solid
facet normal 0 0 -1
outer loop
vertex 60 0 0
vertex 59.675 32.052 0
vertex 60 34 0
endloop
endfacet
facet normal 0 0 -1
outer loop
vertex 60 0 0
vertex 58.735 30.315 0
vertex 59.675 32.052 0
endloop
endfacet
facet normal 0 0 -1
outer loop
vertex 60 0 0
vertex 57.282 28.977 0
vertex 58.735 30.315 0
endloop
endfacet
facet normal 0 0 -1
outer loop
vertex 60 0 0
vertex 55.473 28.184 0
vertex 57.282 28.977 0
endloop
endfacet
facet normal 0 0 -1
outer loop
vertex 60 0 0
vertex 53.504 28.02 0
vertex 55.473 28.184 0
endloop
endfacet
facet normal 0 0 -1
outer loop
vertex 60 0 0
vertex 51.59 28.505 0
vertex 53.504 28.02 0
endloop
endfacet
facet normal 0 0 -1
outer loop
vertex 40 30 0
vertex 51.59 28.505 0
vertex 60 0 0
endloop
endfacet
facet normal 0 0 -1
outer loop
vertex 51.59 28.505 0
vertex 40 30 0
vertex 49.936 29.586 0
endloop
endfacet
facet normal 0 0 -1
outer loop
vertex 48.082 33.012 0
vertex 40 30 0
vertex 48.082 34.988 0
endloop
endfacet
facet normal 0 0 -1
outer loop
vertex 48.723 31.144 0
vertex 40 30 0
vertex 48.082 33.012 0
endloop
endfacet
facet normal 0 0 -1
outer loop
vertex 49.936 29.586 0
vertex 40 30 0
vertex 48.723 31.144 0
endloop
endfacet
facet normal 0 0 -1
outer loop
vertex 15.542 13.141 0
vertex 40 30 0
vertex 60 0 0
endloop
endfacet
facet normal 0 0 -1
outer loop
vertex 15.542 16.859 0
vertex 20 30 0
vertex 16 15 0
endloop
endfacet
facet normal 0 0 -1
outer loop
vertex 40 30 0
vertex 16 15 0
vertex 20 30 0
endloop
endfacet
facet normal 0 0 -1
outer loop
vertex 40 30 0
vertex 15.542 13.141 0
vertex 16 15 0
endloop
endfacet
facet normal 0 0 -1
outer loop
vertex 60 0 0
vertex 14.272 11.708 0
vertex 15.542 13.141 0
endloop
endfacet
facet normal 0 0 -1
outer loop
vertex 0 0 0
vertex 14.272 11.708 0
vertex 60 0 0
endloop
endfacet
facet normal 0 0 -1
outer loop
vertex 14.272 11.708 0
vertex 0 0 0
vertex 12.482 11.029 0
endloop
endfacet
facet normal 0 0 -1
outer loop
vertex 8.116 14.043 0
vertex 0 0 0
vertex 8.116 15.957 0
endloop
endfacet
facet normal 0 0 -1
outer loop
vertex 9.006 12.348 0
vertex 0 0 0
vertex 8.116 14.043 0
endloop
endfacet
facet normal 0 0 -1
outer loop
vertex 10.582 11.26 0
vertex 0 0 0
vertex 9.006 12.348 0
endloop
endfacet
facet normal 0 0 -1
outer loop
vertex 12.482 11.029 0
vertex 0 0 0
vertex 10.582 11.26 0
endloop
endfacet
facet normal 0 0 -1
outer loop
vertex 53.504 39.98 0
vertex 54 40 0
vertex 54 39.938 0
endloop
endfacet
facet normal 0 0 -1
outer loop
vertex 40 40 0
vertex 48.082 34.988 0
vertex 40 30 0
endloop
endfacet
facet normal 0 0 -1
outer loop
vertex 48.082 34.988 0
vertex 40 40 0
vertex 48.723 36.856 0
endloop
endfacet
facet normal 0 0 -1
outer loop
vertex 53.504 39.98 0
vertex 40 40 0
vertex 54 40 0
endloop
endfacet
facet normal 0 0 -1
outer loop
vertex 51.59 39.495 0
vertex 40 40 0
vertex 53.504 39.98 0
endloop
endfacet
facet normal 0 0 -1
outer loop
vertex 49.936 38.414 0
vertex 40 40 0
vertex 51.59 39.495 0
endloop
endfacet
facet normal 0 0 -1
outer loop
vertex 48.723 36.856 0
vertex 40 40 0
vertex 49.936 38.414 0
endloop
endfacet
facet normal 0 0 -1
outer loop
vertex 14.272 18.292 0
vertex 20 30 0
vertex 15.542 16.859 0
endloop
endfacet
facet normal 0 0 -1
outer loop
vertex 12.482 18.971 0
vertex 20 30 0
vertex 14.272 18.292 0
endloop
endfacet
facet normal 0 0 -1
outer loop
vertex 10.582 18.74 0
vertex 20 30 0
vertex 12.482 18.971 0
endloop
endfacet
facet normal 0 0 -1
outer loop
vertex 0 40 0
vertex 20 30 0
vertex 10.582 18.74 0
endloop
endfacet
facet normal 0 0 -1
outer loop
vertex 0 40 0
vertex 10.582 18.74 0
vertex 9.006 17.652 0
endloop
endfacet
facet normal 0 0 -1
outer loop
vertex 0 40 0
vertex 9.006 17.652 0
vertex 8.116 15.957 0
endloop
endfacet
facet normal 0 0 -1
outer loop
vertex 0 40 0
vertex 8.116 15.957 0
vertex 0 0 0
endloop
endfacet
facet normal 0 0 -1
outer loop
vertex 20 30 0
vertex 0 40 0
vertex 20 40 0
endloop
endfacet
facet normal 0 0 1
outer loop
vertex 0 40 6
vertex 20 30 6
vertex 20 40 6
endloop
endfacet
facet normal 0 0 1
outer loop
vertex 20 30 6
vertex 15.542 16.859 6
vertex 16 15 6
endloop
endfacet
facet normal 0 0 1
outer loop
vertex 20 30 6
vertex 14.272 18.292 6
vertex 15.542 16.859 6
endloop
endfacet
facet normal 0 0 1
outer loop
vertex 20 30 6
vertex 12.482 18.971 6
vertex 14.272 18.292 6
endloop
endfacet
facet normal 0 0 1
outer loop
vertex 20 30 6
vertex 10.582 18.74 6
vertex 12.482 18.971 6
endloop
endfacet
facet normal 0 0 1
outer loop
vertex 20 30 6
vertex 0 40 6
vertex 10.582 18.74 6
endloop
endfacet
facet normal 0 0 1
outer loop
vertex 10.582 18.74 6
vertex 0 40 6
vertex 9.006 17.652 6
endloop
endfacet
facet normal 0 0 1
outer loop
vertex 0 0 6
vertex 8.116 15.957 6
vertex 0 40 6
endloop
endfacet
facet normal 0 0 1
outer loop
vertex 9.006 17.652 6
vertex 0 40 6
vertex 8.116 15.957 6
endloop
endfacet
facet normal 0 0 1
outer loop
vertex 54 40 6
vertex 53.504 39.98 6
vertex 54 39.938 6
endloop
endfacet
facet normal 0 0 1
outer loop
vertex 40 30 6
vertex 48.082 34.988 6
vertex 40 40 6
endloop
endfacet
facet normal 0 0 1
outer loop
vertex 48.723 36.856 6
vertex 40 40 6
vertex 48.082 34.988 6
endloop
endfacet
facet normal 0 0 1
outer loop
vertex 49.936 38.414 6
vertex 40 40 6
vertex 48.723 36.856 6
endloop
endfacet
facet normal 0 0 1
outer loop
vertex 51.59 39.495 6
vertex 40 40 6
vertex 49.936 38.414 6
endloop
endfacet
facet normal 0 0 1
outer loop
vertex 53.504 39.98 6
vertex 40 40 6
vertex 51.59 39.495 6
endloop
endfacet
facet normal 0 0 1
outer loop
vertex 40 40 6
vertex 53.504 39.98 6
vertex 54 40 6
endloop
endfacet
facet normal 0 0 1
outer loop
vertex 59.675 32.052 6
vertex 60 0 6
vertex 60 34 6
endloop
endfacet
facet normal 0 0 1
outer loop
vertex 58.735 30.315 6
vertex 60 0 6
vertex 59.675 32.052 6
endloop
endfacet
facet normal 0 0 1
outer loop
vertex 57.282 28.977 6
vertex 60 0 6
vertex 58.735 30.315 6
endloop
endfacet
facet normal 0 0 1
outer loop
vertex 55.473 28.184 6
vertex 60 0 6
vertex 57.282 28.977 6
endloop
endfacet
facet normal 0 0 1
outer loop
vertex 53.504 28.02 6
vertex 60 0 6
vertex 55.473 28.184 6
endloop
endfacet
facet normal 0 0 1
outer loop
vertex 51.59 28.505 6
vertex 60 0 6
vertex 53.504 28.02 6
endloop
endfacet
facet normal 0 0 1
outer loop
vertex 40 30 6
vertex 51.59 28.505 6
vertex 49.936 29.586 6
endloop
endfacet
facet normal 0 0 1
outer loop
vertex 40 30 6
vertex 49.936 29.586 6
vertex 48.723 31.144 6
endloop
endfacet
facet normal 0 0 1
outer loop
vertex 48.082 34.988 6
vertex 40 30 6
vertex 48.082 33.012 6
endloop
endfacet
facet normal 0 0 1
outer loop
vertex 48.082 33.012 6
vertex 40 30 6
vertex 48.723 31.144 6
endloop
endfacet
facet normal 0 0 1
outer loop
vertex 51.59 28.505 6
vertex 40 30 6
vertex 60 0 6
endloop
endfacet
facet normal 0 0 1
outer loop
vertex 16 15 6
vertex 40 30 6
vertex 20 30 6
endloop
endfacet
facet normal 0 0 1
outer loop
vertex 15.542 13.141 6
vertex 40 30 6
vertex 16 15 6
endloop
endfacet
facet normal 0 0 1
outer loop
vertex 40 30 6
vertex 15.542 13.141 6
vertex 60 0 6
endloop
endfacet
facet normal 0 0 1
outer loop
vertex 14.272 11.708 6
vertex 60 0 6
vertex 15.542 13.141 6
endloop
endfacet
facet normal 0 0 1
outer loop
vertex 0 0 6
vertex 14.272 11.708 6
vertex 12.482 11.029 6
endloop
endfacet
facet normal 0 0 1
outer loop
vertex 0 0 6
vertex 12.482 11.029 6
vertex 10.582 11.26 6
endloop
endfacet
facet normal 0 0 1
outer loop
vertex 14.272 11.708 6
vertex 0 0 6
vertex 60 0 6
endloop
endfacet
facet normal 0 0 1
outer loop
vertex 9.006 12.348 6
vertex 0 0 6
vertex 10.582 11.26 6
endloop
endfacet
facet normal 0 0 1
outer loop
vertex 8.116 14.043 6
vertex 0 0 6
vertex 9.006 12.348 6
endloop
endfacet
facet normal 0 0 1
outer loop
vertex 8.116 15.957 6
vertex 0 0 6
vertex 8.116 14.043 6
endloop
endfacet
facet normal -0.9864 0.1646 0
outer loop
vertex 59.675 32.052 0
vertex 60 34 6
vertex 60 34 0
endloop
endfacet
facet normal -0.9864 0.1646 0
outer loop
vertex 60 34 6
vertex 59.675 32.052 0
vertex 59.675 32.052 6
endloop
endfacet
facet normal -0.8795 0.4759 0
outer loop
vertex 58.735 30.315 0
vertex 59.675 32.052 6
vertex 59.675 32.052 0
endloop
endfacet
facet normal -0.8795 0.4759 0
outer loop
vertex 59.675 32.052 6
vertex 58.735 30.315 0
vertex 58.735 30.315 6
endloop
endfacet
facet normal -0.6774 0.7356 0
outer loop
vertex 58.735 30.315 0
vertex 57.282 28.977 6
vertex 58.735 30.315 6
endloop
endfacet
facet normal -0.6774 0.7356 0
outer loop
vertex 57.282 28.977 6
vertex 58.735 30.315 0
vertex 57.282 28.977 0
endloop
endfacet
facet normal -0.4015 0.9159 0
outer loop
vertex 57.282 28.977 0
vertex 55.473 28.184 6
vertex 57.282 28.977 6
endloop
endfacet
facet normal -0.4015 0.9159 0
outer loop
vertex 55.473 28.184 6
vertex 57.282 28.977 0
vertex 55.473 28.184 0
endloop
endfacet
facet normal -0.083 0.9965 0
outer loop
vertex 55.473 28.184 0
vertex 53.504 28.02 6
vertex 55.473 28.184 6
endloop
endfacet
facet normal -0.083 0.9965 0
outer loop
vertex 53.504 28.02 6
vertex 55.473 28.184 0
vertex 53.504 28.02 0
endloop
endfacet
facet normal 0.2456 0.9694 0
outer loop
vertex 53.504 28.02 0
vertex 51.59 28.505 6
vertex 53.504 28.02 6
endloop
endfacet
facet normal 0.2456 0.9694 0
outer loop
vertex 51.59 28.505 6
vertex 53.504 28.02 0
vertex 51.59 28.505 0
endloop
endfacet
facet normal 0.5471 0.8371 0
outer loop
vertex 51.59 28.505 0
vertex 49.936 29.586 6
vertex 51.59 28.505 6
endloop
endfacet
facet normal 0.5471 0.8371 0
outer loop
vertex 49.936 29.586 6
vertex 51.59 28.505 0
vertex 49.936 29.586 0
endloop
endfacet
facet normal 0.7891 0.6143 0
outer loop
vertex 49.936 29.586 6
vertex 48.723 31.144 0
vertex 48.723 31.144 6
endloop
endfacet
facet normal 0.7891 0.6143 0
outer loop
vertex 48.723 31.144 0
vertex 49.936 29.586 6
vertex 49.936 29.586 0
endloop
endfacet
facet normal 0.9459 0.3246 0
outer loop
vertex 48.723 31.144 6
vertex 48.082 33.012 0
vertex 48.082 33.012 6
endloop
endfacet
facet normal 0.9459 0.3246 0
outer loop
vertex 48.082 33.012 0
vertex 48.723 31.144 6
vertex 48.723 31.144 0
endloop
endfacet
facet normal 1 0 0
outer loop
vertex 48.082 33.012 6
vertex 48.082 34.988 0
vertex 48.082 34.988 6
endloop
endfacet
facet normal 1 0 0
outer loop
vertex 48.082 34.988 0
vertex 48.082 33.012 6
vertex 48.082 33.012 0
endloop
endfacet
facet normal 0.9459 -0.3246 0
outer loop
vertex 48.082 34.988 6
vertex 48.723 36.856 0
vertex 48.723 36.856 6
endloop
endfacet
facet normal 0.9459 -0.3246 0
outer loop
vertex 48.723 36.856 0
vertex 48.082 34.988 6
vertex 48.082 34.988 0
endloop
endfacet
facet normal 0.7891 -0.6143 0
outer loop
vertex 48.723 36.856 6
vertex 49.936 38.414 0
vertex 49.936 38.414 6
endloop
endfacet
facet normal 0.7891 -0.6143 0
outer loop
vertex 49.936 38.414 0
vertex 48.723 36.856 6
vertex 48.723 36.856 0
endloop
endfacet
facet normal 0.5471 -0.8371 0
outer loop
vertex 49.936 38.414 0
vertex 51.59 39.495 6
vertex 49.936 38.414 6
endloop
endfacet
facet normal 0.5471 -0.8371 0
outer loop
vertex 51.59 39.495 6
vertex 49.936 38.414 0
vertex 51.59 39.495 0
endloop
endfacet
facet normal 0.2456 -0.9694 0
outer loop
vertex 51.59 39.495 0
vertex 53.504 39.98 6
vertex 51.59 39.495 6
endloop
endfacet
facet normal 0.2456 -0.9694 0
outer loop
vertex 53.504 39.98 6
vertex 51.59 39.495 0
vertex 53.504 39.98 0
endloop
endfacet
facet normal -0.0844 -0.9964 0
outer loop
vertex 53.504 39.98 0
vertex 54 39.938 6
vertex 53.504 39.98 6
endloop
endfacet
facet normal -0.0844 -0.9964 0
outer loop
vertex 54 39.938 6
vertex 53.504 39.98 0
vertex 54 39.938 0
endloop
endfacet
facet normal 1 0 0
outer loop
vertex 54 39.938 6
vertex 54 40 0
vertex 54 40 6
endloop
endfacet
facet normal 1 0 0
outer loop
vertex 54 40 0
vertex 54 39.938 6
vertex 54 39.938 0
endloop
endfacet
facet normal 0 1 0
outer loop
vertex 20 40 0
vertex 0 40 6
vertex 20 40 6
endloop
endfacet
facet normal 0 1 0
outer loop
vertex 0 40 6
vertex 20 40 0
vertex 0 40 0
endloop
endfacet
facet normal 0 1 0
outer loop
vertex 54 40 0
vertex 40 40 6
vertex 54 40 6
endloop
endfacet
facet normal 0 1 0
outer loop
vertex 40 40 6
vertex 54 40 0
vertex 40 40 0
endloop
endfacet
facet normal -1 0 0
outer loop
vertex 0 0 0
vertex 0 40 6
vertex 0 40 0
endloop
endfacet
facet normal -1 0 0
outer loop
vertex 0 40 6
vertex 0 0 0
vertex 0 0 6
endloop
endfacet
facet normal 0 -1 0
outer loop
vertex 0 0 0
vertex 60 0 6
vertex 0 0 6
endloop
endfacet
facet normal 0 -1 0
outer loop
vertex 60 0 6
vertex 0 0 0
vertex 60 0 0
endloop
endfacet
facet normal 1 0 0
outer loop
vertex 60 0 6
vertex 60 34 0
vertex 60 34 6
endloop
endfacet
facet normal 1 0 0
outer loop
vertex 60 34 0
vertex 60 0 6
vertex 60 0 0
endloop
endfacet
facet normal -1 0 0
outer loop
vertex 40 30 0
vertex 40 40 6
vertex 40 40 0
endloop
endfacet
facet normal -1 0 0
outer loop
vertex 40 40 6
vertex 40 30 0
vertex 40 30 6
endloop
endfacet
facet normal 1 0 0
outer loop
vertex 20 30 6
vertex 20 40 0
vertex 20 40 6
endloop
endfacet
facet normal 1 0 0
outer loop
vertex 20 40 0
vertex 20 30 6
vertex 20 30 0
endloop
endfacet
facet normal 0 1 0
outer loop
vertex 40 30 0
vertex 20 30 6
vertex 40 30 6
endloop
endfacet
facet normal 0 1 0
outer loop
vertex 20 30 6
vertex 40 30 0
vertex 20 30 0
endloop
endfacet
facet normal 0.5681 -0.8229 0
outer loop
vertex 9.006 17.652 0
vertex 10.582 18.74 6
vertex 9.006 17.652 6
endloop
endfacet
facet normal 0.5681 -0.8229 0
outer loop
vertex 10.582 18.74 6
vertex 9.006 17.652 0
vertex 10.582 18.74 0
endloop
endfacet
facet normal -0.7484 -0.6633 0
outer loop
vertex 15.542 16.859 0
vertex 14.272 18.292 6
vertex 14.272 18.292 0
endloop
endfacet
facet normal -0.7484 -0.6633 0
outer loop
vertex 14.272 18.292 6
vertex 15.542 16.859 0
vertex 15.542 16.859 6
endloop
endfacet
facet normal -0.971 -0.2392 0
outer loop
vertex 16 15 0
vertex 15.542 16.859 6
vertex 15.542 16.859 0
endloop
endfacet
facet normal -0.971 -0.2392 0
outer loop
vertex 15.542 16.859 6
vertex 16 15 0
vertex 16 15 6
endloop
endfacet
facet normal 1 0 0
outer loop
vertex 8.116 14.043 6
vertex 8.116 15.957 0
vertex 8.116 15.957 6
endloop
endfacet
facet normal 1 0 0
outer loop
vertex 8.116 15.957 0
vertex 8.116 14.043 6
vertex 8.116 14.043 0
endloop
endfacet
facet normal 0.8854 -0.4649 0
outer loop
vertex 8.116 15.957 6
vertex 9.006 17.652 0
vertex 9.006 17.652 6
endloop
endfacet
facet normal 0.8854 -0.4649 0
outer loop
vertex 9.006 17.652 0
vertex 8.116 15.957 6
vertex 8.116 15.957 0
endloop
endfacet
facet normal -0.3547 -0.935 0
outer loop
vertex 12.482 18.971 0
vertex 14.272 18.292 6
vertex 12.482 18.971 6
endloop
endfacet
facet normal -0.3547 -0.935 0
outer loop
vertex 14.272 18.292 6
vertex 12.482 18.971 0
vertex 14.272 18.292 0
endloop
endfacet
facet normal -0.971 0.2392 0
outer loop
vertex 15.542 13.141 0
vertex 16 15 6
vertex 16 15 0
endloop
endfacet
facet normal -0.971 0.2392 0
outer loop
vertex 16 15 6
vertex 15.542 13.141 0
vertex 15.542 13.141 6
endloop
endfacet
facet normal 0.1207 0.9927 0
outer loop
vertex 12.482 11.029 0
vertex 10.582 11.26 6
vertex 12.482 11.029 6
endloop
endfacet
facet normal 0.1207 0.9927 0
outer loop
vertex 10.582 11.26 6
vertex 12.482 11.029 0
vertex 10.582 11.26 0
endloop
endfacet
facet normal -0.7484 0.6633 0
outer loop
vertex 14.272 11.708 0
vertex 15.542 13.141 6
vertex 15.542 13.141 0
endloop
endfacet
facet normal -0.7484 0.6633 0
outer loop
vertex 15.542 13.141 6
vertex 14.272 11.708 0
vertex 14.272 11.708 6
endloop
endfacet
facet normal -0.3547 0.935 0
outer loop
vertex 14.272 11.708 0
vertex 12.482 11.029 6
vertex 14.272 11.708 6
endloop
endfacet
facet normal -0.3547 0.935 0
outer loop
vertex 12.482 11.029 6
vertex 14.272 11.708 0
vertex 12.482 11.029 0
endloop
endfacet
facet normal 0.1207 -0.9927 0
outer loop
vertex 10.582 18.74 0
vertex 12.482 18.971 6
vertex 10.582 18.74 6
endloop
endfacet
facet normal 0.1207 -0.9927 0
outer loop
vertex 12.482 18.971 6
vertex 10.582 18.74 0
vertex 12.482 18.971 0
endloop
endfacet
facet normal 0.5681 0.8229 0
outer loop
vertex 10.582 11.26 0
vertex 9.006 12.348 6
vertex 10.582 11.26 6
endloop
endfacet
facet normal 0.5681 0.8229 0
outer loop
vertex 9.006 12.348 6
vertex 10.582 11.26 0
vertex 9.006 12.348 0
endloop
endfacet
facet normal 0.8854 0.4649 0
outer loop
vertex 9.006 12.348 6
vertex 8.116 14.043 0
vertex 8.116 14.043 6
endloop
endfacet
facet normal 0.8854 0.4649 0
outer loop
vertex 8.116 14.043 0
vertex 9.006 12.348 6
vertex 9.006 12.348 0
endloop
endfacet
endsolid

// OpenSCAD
/* doodle-meta {"version":1,"parameters":{"plate_width":{"label":"Overall width","description":"Changes the body width","unit":"mm","feature":"body_width"},"plate_depth":{"label":"Overall depth","description":"Changes the body depth","unit":"mm","feature":"body_depth"},"plate_thickness":{"label":"Overall thickness","description":"Changes the body thickness","unit":"mm","feature":"body_thickness"},"notch_width":{"label":"Notch width","description":"Changes the width of the top notch","unit":"mm","feature":"notch"},"notch_depth":{"label":"Notch depth","description":"Changes the depth of the top notch","unit":"mm","feature":"notch"},"fillet_radius":{"label":"Fillet radius","description":"Changes the radius of the top-right corner fillet","unit":"mm","feature":"fillet"},"hole_diameter":{"label":"Hole diameter","description":"Changes the diameter of the through hole","unit":"mm","feature":"hole"},"hole_x":{"label":"Hole X position","description":"Changes the X position of the hole from the left edge","unit":"mm","feature":"hole"},"hole_y":{"label":"Hole Y position","description":"Changes the Y position of the hole from the front edge","unit":"mm","feature":"hole"}},"features":{"body_width":{"kind":"dimension","axis":"x","label":"Overall width"},"body_depth":{"kind":"dimension","axis":"y","label":"Overall depth"},"body_thickness":{"kind":"dimension","axis":"z","label":"Overall thickness"},"notch":{"kind":"region","label":"Top Notch","min":[{"parameter":"plate_width","scale":0.5,"offset":-10},{"parameter":"plate_depth","scale":1.0,"offset":0},0],"max":[{"parameter":"plate_width","scale":0.5,"offset":10},{"parameter":"plate_depth","scale":1.0,"offset":0},{"parameter":"plate_thickness","scale":1.0,"offset":0}]},"fillet":{"kind":"region","label":"Top-Right Fillet","min":[{"parameter":"plate_width","scale":1.0,"offset":-6},{"parameter":"plate_depth","scale":1.0,"offset":-6},0],"max":[{"parameter":"plate_width","scale":1.0,"offset":0},{"parameter":"plate_depth","scale":1.0,"offset":0},{"parameter":"plate_thickness","scale":1.0,"offset":0}]},"hole":{"kind":"region","label":"Through Hole","min":[{"parameter":"hole_x","scale":1.0,"offset":-4},{"parameter":"hole_y","scale":1.0,"offset":-4},0],"max":[{"parameter":"hole_x","scale":1.0,"offset":4},{"parameter":"hole_y","scale":1.0,"offset":4},{"parameter":"plate_thickness","scale":1.0,"offset":0}]}}} */

// Top-level parameters
plate_width = 60;
plate_depth = 40;
plate_thickness = 6;
notch_width = 20;
notch_depth = 10;
fillet_radius = 6;
hole_diameter = 8;
hole_x = 12;
hole_y = 15;

// Derived constants (not user-editable)
eps = 0.01;

// Main design
difference() {
    // Positive body: extruded profile with fillet
    translate([0, 0, 0])
        linear_extrude(height = plate_thickness)
            difference() {
                // Base rectangle
                square([plate_width, plate_depth]);
                // Fillet at top-right corner (X=plate_width, Y=plate_depth)
                // Remove the corner square
                translate([plate_width - fillet_radius, plate_depth - fillet_radius])
                    square([fillet_radius + eps, fillet_radius + eps]);
                // Add back the quarter circle
                translate([plate_width - fillet_radius, plate_depth - fillet_radius])
                    circle(r = fillet_radius);
            }
    
    // Subtractive cutters
    
    // 1. Top notch (centered on top edge, Y=plate_depth)
    // Notch spans X from (plate_width/2 - notch_width/2) to (plate_width/2 + notch_width/2)
    // Notch spans Y from (plate_depth - notch_depth) to (plate_depth + eps)
    translate([plate_width/2 - notch_width/2, plate_depth - notch_depth, -eps])
        cube([notch_width, notch_depth + eps, plate_thickness + 2*eps]);
    
    // 2. Through hole (Ø8mm at X=12, Y=15 from bottom-left)
    // Hole axis is along Z (through the plate thickness)
    translate([hole_x, hole_y, -eps])
        cylinder(h = plate_thickness + 2*eps, d = hole_diameter, center = false);
}
